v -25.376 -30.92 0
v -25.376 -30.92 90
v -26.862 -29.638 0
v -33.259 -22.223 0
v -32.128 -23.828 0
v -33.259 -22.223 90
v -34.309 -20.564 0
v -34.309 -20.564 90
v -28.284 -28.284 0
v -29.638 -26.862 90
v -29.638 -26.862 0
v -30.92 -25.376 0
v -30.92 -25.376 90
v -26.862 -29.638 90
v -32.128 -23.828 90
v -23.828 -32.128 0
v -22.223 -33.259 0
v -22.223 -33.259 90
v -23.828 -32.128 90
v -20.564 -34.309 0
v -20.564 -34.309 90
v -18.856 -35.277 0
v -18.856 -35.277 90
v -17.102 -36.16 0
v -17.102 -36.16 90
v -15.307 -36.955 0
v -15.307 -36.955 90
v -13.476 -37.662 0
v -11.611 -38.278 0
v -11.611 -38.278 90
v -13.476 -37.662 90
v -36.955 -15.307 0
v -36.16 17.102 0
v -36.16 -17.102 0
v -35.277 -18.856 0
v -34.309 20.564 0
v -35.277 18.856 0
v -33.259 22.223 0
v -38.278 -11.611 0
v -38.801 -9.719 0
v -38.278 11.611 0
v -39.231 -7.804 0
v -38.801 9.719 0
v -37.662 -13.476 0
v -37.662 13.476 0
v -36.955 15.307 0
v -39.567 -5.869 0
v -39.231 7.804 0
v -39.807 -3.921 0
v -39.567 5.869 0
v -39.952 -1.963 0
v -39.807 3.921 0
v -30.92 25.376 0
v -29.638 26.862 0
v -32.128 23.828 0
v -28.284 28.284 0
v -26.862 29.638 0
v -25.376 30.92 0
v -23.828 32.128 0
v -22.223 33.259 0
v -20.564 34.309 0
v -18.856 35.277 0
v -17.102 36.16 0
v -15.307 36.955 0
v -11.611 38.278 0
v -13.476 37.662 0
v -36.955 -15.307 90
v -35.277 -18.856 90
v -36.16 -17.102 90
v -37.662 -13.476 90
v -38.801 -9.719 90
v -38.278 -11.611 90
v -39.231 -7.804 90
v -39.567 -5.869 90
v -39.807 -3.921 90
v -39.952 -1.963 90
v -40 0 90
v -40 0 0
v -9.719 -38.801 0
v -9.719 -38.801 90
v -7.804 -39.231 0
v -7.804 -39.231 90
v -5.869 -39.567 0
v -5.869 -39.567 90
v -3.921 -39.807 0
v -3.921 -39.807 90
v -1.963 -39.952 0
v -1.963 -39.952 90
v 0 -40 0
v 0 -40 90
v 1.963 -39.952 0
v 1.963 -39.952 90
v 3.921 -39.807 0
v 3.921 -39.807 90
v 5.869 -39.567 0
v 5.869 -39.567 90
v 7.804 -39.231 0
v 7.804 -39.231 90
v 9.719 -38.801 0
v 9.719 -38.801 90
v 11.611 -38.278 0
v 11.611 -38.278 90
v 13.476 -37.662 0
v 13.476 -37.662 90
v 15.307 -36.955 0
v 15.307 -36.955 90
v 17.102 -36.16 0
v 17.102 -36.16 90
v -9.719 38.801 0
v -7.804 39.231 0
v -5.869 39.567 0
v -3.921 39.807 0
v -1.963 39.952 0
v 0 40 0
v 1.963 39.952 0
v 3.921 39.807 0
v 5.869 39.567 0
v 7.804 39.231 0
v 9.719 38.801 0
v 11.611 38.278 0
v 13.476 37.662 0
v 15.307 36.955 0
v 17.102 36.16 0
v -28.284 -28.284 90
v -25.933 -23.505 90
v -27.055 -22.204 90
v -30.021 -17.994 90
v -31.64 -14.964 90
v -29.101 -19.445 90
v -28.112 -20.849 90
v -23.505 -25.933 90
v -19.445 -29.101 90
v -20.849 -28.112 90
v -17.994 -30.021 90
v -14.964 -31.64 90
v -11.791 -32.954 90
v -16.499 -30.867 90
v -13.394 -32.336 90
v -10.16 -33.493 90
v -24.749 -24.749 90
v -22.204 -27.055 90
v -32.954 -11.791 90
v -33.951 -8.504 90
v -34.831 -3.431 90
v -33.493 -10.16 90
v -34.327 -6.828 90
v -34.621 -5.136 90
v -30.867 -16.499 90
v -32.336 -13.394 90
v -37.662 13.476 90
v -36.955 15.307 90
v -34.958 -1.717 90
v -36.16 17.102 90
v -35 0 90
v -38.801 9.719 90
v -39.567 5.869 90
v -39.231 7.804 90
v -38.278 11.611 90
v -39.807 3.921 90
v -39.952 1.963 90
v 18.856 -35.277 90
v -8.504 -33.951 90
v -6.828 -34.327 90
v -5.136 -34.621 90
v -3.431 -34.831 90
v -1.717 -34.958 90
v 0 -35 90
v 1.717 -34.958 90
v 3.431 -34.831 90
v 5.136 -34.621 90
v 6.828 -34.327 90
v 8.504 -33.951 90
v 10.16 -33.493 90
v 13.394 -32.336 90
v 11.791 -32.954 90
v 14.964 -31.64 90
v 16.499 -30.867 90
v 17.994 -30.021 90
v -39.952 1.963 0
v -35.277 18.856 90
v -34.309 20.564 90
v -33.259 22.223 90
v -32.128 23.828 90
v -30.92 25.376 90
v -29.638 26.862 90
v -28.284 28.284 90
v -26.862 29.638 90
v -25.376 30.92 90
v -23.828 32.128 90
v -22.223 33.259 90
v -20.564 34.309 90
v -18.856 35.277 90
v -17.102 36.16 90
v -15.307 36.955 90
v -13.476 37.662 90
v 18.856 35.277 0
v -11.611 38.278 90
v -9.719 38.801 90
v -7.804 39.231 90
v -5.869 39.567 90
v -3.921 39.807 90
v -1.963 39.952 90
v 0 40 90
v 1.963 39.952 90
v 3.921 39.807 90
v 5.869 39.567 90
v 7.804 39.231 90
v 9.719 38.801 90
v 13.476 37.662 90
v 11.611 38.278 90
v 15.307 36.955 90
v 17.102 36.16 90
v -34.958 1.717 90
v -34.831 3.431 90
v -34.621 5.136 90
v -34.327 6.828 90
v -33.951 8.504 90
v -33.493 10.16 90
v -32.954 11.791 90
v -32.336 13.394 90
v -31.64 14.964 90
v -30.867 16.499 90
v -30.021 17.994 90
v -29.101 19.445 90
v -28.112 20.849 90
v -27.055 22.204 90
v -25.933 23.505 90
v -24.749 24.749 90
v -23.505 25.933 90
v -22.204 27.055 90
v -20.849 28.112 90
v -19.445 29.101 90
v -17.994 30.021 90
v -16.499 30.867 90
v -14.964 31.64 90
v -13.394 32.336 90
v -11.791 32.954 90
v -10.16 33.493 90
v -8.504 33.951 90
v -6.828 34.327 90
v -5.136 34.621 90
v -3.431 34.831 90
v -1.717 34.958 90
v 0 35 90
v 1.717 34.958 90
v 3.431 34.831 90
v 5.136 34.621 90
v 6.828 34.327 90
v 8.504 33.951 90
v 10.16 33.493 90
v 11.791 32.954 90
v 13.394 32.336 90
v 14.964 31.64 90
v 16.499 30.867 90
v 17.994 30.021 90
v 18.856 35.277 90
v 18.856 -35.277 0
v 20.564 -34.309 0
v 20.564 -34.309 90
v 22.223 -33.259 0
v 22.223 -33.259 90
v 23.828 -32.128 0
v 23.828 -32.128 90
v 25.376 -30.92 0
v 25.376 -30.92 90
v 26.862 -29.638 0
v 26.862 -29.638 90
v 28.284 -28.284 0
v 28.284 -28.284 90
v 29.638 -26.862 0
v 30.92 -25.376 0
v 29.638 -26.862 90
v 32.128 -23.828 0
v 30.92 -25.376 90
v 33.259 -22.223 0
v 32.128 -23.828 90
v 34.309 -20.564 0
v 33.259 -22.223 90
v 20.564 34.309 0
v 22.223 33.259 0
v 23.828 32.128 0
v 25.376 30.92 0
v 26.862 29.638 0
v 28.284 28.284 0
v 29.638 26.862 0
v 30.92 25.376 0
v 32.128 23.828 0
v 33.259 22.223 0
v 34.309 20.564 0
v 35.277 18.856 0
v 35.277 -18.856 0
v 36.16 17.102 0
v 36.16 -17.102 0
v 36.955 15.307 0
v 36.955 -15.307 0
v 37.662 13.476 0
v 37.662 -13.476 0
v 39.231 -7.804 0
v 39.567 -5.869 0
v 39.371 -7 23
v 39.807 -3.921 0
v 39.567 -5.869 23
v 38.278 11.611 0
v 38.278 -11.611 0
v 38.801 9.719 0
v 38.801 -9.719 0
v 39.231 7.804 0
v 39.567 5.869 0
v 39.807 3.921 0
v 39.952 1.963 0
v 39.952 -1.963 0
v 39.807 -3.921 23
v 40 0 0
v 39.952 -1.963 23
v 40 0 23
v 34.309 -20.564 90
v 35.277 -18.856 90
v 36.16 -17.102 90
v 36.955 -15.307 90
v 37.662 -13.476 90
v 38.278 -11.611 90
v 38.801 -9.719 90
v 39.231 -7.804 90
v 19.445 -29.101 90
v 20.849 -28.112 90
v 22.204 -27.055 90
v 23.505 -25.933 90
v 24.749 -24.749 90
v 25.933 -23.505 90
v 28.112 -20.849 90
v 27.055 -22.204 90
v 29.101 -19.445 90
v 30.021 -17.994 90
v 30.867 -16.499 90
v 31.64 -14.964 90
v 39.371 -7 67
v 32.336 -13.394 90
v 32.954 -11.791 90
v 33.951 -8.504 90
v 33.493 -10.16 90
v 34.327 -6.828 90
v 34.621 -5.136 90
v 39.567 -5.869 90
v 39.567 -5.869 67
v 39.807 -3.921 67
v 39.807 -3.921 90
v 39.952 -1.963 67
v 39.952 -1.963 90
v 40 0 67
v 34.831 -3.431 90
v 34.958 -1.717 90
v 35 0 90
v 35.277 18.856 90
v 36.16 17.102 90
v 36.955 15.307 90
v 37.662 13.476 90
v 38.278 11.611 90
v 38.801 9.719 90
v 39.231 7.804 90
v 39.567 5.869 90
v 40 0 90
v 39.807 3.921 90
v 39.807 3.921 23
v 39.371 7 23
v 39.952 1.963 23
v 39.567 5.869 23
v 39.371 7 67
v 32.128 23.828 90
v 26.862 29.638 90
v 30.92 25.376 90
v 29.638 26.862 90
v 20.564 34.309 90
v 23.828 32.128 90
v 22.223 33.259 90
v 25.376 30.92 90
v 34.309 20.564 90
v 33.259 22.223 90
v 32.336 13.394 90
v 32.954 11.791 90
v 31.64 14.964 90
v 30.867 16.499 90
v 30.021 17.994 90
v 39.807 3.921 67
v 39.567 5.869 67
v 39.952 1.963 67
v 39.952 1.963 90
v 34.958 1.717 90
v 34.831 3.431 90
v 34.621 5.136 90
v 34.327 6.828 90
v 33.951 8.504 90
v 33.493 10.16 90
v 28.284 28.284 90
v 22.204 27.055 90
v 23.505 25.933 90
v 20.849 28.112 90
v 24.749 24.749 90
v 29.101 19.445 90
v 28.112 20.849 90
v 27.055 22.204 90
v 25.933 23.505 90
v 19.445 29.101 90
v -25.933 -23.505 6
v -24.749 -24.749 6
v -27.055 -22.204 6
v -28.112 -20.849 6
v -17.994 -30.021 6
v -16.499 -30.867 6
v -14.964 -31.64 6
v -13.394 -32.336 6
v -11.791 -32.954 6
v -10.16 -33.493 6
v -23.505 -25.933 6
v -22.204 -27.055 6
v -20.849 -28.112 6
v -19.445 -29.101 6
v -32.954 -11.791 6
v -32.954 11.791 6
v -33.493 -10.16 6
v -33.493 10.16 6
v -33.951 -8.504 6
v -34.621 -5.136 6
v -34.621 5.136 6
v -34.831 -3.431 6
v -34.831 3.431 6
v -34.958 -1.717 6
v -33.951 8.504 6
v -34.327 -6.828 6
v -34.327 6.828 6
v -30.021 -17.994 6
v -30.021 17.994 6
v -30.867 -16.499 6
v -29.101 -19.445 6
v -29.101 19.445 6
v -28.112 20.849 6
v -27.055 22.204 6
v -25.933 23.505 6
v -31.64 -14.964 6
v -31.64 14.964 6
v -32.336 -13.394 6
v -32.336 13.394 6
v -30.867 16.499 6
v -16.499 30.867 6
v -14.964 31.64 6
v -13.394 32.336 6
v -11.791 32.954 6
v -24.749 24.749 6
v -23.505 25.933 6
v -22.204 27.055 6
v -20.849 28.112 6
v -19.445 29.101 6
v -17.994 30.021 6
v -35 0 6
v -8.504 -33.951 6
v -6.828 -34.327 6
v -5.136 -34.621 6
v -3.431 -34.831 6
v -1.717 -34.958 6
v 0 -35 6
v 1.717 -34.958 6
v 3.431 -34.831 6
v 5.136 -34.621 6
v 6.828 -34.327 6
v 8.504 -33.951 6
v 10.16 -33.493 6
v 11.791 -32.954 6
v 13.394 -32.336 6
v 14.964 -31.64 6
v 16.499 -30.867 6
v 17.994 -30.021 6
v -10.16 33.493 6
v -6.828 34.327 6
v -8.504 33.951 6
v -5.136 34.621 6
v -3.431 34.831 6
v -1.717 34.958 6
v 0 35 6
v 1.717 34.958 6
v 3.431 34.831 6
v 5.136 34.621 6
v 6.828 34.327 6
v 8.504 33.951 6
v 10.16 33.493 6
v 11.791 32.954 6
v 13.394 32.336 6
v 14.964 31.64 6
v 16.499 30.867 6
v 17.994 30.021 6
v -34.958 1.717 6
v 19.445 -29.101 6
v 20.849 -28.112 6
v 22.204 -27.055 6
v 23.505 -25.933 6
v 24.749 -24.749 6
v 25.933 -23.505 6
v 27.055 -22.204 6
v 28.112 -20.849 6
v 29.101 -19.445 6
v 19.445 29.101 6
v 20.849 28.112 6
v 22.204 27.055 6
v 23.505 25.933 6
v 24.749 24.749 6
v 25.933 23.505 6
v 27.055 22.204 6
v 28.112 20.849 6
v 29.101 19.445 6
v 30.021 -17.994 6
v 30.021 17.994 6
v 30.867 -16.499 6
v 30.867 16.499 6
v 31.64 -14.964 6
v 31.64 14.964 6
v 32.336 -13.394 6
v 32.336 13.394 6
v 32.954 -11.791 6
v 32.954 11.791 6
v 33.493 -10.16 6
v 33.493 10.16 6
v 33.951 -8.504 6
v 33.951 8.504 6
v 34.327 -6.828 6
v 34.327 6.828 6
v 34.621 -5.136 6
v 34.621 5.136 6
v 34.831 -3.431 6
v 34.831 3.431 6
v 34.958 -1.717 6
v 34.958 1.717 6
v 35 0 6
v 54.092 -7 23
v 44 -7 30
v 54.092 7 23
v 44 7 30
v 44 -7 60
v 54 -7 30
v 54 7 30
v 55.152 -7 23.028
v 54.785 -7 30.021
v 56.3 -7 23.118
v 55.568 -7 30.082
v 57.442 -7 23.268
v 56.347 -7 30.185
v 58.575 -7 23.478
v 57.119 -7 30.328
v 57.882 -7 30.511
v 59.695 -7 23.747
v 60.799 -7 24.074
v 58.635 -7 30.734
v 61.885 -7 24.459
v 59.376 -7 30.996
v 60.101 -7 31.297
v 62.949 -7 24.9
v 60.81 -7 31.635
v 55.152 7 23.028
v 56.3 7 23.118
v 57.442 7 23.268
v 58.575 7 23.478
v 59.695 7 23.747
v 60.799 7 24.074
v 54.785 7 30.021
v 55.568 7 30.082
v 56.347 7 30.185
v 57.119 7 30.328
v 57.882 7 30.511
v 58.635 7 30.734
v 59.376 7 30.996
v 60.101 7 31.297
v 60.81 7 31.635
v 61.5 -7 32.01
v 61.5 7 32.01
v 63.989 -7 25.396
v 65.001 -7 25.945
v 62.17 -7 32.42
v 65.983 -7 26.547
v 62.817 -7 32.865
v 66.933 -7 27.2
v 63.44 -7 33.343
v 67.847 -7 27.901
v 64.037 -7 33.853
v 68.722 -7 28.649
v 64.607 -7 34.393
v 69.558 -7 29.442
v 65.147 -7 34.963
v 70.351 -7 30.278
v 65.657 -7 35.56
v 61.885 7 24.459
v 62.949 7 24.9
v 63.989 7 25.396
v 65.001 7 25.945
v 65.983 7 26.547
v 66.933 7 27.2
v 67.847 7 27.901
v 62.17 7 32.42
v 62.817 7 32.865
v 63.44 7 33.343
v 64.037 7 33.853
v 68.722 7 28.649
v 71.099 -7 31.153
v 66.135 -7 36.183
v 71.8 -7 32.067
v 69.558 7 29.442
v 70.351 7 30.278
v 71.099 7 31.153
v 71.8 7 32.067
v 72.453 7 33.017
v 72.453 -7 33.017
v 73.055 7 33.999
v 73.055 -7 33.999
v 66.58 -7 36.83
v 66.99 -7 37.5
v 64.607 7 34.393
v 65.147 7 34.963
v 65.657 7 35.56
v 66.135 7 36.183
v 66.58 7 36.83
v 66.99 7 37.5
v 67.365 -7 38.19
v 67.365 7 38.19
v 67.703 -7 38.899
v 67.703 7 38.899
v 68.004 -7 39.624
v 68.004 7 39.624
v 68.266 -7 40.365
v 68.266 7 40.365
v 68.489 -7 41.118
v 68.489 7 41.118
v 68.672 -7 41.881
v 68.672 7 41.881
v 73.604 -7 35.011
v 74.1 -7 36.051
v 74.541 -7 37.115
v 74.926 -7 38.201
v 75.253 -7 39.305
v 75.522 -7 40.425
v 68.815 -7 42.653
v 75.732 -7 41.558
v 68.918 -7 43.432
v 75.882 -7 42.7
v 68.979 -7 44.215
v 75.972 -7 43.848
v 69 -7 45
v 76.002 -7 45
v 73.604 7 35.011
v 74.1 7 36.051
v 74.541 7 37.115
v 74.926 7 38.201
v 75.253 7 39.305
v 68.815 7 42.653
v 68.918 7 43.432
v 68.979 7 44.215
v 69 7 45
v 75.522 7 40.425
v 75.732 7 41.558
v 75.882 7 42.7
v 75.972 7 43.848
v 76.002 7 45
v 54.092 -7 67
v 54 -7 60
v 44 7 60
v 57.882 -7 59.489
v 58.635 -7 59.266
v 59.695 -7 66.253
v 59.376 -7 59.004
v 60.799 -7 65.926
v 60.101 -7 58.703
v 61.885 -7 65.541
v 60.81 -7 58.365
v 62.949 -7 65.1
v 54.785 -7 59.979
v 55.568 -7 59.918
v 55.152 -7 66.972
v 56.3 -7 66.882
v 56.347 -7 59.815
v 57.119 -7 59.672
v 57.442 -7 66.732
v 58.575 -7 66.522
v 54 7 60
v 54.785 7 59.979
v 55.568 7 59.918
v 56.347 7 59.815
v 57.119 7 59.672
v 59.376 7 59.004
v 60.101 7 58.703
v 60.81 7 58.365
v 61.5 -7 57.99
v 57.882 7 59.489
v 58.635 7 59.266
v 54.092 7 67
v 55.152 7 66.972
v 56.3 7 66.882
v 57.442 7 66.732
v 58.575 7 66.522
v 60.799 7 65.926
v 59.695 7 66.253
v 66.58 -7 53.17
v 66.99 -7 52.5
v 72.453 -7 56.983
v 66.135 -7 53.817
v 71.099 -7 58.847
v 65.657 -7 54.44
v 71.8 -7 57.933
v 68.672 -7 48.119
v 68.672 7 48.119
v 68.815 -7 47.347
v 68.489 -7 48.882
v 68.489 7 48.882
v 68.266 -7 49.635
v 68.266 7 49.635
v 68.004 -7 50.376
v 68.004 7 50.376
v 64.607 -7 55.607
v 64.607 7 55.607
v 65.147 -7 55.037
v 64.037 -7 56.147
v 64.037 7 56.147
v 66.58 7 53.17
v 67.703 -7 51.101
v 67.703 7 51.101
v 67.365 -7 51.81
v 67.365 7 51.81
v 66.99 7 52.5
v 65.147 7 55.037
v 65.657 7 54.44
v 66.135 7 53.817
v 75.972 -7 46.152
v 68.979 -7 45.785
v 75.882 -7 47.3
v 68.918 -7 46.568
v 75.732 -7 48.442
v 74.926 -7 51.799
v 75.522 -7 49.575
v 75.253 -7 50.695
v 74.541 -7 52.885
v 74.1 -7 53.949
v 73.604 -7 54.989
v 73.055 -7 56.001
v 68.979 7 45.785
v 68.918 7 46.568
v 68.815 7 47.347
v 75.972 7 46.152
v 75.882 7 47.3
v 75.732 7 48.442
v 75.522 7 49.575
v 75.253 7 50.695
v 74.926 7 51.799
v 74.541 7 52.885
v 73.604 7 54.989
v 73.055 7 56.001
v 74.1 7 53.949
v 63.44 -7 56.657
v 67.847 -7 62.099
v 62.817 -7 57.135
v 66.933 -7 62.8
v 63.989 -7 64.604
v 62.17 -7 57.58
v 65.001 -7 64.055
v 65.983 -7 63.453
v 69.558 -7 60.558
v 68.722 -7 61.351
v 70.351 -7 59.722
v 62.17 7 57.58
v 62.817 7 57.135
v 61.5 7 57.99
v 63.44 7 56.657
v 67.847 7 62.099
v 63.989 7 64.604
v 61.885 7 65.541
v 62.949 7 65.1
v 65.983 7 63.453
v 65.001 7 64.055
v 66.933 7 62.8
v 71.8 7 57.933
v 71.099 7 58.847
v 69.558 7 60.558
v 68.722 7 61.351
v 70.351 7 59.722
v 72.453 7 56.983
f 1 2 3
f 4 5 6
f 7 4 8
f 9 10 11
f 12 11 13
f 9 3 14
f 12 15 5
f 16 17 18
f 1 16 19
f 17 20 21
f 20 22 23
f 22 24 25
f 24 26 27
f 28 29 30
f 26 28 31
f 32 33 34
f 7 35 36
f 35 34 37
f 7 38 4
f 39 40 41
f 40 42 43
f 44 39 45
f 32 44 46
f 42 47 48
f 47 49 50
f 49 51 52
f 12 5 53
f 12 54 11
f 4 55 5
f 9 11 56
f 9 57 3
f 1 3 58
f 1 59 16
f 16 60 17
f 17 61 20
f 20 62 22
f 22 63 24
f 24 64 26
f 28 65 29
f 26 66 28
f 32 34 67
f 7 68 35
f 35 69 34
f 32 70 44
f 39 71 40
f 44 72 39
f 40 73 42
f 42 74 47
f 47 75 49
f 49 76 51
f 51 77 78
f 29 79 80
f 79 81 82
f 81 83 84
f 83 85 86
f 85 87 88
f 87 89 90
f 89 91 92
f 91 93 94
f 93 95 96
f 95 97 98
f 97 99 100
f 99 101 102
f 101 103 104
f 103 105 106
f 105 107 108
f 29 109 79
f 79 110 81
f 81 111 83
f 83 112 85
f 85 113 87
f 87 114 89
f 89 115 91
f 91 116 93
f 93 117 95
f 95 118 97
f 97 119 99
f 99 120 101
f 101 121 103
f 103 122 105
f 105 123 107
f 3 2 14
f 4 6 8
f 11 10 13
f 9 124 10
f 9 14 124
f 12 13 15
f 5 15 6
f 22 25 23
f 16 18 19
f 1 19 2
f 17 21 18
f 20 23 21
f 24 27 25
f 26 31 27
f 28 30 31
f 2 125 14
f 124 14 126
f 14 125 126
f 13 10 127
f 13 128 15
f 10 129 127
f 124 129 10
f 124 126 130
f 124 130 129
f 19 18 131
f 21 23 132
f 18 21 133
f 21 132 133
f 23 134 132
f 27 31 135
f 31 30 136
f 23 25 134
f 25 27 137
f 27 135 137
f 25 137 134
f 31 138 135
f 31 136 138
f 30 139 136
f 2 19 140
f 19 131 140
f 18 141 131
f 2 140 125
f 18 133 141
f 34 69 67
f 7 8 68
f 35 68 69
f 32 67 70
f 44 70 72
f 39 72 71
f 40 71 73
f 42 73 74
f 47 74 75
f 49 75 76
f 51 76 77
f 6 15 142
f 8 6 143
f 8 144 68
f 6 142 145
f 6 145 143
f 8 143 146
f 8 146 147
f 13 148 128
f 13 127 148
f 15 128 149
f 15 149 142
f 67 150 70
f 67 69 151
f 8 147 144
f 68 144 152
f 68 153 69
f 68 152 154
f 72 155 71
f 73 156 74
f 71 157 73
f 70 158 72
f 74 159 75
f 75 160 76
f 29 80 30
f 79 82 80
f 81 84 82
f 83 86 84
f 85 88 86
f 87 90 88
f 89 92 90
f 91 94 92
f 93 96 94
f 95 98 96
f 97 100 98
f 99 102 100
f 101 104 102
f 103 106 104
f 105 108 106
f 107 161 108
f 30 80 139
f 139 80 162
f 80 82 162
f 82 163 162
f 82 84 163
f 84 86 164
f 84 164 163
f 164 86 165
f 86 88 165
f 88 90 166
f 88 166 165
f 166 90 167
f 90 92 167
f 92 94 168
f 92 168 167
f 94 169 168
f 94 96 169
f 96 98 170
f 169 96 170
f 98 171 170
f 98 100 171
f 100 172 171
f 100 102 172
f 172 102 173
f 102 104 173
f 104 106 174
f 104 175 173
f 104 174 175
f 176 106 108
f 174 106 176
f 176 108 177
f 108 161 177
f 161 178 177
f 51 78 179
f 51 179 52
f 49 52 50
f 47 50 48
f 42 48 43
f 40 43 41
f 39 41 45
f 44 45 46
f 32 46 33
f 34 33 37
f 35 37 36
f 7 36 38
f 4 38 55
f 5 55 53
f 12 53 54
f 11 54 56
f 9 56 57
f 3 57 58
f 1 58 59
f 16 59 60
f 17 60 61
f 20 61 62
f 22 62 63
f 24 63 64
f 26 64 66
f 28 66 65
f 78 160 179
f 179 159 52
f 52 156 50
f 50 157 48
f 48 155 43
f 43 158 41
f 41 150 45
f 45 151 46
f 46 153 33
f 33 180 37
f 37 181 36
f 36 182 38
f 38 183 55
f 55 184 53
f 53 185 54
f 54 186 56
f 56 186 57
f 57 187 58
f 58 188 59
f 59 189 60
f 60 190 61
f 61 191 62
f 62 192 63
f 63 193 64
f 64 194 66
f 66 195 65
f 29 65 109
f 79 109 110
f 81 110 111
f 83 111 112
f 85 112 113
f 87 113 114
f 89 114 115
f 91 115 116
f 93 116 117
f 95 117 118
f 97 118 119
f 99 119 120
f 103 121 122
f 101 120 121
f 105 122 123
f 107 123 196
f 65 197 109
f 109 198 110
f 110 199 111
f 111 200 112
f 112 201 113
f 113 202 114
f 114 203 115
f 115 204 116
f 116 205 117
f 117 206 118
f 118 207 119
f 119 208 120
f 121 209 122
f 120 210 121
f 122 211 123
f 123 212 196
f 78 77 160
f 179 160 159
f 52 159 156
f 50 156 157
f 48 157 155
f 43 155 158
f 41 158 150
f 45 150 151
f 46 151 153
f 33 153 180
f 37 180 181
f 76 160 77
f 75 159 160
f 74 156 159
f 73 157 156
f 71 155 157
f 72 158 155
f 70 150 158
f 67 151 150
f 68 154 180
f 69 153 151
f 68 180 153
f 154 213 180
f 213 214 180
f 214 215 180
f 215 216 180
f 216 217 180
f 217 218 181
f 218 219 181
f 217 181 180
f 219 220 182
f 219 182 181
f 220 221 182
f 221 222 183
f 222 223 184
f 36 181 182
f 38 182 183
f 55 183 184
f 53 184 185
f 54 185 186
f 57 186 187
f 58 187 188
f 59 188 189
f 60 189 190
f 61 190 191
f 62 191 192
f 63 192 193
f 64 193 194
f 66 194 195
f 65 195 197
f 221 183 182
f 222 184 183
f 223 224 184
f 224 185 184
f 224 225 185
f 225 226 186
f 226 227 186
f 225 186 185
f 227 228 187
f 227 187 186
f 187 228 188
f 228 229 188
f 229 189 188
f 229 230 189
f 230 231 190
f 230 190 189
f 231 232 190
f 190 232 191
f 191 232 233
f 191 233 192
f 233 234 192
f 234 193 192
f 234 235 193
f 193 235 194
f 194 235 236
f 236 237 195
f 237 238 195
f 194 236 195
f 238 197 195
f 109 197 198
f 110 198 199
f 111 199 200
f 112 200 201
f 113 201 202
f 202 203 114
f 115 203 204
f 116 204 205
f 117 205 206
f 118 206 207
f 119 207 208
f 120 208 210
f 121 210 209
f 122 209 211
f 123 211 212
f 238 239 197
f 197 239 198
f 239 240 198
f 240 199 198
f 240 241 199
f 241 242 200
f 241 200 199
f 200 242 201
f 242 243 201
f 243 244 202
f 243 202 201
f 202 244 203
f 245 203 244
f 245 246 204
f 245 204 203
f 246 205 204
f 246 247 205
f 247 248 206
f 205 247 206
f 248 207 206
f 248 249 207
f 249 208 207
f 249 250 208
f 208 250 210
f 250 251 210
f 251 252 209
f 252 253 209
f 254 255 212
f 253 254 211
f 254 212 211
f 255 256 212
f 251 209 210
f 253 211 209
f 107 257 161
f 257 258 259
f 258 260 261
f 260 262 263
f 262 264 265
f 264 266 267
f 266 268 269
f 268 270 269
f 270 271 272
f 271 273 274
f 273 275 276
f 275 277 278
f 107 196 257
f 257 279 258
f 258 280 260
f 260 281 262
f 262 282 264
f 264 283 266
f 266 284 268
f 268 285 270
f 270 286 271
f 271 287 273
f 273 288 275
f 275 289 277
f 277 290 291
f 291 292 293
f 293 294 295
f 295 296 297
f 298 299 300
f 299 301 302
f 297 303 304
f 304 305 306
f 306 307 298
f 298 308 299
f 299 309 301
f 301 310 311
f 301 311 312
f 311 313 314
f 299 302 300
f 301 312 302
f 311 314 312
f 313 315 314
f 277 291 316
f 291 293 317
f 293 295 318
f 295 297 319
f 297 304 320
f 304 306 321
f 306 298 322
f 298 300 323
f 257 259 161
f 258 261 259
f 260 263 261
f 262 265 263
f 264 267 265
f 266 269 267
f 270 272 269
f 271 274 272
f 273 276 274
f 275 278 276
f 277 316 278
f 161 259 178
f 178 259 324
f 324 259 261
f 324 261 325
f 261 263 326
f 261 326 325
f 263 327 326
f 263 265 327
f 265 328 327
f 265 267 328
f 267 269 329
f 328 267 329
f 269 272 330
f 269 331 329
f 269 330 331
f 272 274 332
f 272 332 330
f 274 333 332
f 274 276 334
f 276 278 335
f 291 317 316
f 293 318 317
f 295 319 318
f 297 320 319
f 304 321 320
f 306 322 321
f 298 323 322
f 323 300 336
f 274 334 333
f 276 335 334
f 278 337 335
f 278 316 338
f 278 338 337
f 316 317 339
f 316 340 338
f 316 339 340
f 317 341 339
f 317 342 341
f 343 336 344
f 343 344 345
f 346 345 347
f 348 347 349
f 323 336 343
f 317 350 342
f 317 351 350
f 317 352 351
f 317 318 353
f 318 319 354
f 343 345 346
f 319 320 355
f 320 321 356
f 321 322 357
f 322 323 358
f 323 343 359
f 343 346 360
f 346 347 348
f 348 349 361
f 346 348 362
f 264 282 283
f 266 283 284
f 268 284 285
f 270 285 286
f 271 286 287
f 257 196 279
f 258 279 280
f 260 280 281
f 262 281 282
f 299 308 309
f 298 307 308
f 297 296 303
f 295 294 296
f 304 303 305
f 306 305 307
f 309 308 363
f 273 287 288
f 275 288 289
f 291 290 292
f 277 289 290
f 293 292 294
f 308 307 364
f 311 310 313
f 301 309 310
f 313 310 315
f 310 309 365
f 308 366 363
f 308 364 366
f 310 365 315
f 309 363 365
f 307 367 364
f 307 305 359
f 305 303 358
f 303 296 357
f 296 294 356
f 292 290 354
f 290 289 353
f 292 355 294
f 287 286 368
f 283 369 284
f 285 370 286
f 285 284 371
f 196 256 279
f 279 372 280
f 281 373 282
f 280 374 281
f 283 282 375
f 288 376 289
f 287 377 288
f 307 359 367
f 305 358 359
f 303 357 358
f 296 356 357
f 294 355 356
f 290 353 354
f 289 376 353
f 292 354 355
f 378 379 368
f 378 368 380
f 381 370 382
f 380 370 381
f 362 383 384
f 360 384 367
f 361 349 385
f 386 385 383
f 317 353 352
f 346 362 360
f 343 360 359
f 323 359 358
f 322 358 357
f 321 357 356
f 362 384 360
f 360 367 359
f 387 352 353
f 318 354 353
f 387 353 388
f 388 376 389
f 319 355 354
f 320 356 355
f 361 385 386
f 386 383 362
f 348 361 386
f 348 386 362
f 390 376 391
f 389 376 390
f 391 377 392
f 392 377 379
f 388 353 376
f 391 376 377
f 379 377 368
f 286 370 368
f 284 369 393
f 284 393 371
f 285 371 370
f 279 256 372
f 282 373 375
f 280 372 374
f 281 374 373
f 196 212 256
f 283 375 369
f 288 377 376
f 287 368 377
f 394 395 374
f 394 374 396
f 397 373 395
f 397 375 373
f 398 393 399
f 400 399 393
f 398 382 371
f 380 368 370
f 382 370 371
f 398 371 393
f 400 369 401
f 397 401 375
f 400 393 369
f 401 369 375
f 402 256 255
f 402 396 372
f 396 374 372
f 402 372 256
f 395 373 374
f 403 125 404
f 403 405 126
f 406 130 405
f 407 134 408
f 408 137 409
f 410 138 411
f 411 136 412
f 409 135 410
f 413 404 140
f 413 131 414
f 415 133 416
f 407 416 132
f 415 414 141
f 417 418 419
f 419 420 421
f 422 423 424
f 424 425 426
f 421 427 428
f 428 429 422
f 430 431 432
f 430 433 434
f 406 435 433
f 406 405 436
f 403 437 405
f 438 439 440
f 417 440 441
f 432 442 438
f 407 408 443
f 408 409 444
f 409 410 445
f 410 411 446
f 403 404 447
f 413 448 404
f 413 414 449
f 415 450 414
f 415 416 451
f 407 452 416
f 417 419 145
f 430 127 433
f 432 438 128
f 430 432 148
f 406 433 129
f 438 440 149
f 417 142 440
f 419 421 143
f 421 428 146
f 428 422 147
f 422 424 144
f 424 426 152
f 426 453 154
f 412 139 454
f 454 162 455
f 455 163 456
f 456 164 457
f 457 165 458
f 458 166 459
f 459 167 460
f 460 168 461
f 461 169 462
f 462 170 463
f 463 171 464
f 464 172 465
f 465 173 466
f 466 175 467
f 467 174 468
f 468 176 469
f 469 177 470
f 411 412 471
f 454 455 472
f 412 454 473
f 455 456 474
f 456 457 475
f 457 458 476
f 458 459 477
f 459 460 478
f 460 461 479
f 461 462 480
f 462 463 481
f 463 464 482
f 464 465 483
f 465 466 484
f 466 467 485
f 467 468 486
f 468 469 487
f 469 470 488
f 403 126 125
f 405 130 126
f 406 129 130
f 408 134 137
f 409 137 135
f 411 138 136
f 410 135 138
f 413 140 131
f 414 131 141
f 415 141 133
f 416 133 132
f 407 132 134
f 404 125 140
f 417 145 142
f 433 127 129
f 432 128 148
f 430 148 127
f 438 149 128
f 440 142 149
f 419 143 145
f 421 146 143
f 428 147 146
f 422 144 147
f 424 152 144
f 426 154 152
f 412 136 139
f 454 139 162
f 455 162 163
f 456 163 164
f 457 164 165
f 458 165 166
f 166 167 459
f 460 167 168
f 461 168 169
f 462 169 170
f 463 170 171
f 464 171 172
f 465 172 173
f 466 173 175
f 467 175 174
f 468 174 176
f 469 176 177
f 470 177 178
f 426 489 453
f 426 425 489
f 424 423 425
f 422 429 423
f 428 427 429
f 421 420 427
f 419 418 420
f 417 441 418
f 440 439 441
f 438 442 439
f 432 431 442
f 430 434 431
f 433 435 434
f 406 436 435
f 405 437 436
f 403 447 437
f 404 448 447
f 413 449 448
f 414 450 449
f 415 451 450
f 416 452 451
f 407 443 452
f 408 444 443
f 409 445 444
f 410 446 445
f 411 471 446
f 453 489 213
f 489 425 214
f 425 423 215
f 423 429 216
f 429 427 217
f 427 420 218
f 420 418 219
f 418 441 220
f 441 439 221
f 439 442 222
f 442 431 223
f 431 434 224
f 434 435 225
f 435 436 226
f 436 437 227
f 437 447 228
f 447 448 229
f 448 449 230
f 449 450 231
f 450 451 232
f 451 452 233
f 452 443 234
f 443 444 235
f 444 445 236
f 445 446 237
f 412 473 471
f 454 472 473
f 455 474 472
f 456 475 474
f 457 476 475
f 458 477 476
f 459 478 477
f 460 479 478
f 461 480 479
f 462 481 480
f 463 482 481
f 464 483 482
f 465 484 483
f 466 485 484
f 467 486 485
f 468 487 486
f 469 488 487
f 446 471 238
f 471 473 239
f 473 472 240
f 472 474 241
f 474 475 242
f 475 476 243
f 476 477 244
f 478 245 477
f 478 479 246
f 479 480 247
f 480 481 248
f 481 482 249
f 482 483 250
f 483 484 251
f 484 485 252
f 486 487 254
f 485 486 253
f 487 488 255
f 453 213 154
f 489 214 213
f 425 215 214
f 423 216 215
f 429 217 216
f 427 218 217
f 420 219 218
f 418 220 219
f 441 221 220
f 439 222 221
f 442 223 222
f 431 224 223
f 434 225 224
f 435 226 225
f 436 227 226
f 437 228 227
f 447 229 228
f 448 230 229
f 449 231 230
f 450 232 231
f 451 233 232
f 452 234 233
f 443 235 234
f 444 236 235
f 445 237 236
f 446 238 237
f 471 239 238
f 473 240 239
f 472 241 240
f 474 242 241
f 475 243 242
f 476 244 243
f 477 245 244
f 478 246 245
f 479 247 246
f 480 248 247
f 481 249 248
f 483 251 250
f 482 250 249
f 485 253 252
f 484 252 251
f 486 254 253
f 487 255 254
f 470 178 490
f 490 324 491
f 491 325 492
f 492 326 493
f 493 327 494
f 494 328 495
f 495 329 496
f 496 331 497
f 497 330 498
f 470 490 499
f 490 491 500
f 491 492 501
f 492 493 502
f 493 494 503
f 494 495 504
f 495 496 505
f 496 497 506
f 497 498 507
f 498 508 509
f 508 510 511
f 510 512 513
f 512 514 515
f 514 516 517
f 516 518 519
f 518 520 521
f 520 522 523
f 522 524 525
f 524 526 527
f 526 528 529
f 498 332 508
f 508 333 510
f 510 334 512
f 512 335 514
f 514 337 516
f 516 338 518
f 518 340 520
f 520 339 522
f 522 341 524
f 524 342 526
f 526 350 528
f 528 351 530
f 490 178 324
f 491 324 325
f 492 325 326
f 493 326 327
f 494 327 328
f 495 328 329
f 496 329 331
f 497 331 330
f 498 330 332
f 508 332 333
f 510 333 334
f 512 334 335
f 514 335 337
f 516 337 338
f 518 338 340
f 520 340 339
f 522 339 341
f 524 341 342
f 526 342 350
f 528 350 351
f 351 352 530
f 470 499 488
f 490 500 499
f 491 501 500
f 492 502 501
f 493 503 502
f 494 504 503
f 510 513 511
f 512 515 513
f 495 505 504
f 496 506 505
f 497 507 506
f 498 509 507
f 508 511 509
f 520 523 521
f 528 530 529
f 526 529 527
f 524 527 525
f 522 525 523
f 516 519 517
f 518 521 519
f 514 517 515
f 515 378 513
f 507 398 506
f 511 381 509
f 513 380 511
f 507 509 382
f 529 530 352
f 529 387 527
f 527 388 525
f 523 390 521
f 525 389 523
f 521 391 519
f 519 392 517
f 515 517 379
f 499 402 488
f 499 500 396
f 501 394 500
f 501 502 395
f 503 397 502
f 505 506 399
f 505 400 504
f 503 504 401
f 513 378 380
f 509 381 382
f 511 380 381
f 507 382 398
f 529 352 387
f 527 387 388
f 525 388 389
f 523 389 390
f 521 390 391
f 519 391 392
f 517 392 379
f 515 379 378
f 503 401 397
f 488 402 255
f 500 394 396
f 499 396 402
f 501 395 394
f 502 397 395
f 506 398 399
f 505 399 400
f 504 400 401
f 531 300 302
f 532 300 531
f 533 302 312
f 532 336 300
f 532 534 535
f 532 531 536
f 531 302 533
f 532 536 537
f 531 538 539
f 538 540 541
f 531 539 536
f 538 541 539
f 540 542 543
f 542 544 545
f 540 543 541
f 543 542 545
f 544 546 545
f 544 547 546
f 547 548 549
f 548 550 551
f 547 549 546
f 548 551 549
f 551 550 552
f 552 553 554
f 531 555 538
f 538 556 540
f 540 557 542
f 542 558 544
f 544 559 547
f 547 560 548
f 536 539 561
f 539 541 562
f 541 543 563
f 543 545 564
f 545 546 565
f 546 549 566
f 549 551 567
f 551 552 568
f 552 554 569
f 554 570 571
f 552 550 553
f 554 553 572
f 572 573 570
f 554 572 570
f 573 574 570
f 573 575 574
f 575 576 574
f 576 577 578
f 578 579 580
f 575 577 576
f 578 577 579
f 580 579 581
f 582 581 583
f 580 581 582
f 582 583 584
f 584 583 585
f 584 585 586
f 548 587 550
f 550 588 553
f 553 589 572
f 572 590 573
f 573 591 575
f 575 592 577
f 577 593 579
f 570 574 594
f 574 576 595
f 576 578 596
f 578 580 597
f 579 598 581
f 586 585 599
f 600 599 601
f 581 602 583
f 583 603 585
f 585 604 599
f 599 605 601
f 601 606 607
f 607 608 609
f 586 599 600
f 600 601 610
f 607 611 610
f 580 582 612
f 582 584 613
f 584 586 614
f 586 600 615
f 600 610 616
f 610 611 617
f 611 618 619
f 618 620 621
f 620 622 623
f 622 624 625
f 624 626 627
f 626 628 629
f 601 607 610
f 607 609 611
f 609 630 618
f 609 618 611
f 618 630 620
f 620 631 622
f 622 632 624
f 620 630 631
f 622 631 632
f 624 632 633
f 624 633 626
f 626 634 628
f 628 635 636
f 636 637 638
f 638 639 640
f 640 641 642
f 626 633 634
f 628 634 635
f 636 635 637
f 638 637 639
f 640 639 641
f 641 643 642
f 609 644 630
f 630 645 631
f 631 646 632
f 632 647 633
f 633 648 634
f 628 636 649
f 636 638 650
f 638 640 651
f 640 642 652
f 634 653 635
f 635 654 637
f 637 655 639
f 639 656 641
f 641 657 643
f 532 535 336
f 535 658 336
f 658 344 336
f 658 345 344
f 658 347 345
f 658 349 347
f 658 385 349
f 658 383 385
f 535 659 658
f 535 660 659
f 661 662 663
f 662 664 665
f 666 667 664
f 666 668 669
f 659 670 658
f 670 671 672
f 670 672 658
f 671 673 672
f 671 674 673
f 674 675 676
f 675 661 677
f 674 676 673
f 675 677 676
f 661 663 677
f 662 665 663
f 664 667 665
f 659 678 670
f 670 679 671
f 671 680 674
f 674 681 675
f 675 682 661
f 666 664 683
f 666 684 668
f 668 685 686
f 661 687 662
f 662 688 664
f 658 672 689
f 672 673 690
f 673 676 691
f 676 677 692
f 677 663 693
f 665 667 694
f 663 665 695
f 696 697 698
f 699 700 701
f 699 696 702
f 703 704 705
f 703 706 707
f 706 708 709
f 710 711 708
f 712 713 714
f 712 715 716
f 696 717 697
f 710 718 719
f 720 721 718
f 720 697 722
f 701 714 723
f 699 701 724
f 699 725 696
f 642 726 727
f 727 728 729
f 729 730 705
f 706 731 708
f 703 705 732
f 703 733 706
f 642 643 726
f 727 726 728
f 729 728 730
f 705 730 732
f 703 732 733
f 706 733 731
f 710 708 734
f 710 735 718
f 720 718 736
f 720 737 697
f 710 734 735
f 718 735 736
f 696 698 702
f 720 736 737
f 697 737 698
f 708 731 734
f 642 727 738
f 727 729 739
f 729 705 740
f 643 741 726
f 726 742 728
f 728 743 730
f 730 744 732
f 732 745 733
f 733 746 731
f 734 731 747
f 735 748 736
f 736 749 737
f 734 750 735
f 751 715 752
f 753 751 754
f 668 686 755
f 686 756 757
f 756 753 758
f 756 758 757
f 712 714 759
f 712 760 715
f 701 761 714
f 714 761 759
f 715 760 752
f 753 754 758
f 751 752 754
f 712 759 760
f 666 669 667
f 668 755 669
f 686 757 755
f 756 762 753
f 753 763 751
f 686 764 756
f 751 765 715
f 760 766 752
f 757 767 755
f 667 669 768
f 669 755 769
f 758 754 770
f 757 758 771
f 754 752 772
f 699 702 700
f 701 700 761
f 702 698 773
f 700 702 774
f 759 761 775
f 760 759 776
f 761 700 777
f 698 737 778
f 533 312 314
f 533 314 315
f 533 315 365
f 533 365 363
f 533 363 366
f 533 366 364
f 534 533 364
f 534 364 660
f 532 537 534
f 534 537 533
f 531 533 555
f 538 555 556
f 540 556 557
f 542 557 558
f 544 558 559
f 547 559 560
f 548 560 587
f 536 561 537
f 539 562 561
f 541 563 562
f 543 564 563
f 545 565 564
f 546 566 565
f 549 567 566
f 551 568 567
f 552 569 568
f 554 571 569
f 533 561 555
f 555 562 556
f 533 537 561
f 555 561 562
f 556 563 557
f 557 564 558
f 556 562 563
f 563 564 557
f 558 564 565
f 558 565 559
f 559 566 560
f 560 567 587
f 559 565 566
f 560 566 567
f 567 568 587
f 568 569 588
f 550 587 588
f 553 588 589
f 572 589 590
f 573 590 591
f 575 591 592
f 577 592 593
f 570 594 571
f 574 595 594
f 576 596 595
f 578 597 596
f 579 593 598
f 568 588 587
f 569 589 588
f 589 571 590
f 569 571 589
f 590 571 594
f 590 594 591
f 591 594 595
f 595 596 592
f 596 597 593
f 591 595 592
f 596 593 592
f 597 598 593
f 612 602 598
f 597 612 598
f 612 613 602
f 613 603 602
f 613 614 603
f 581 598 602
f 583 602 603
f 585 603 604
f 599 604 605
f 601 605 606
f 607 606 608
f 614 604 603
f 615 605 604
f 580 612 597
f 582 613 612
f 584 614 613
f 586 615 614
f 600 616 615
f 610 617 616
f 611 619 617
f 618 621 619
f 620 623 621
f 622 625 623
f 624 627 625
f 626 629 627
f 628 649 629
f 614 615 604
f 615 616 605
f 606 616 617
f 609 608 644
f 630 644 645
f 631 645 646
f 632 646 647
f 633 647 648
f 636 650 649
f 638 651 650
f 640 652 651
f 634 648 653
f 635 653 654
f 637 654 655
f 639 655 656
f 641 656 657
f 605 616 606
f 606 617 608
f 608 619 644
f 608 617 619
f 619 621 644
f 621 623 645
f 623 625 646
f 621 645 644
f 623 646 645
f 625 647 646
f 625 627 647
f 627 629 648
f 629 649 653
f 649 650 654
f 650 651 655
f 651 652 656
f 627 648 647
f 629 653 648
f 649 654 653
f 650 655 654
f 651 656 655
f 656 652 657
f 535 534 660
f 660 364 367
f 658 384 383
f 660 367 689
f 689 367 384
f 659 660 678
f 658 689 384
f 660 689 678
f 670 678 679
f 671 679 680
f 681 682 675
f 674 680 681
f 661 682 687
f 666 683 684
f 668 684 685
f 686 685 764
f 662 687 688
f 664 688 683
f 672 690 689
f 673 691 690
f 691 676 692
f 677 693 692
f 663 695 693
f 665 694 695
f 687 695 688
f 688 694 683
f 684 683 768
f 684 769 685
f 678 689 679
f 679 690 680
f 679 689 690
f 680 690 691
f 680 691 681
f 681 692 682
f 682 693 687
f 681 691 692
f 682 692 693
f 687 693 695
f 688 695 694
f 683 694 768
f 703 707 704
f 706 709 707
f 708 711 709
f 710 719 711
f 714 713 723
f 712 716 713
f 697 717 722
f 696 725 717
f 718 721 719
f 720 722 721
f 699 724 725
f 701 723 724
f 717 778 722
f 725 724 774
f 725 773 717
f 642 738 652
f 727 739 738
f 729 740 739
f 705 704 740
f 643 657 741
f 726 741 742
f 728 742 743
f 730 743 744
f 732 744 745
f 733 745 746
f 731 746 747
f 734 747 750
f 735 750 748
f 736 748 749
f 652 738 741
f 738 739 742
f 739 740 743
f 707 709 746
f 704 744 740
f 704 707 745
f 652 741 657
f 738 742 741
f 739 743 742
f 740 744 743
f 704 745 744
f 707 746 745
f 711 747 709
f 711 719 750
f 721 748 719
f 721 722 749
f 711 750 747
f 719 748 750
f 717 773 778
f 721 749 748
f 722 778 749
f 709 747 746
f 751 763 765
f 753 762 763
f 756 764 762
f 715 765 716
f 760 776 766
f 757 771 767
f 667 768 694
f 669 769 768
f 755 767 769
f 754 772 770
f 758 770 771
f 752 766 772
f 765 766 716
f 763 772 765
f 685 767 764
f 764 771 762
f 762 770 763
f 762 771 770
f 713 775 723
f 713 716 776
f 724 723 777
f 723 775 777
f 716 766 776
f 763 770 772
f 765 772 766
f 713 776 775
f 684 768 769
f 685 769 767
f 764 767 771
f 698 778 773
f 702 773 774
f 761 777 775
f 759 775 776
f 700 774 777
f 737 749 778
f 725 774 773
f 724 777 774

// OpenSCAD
$fn = 128;

outer_radius = 40;
inner_radius = 35;
mug_height   = 90;
bottom_thickness = 6;

handle_thickness = 14;
handle_wall = 7;

module mug_body() {
    difference() {
        cylinder(h = mug_height, r = outer_radius);
        translate([0, 0, bottom_thickness])
            cylinder(h = mug_height - bottom_thickness + 1, r = inner_radius);
    }
}

module handle_opening_2d() {
    polygon(points = concat(
        [[44, 30]],
        [for (a = [-90 : 3 : 90])
            [54 + 15 * cos(a), 45 + 15 * sin(a)]],
        [[44, 60]]
    ));
}

module handle() {
    rotate([90, 0, 0])
        linear_extrude(height = handle_thickness, center = true, convexity = 10)
            difference() {
                offset(delta = handle_wall)
                    handle_opening_2d();
                handle_opening_2d();
            }
}

union() {
    mug_body();
    handle();
}
